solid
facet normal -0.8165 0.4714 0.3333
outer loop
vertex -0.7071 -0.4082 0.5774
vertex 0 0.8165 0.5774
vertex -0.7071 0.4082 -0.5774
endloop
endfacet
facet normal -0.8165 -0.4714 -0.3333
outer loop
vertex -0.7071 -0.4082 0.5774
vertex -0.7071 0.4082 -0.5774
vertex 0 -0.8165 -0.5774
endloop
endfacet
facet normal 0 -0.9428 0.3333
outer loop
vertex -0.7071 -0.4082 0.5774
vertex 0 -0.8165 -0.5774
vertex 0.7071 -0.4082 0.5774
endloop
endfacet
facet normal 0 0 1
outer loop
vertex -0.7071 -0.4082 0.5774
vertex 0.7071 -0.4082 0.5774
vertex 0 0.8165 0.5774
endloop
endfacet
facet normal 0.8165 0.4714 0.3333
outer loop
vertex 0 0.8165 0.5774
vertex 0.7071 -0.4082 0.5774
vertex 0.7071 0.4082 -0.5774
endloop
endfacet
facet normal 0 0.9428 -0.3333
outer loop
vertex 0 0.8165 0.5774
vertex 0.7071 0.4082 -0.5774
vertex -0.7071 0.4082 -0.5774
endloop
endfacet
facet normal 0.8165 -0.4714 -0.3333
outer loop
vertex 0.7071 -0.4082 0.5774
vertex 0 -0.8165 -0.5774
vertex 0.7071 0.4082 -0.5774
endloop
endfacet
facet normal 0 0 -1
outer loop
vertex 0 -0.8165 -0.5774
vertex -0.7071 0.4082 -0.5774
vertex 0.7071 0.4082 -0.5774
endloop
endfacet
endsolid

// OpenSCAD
polyhedron( points = [[-0.707106781207082, -0.408248290463961, 0.577350269164406], [3.17364358756765e-11, 0.816496580933508, 0.577350269164406], [0.707106781123924, -0.408248290463961, 0.577350269164406], [-4.92129780235196e-12, -0.816496580915674, -0.577350269168009], [-0.707106781115438, 0.408248290513541, -0.577350269168009], [0.707106781171781, 0.408248290396548, -0.577350269157201]], faces = [[0, 1, 4], [0, 4, 3], [0, 3, 2], [0, 2, 1], [1, 2, 5], [1, 5, 4], [2, 3, 5], [3, 4, 5]]);
